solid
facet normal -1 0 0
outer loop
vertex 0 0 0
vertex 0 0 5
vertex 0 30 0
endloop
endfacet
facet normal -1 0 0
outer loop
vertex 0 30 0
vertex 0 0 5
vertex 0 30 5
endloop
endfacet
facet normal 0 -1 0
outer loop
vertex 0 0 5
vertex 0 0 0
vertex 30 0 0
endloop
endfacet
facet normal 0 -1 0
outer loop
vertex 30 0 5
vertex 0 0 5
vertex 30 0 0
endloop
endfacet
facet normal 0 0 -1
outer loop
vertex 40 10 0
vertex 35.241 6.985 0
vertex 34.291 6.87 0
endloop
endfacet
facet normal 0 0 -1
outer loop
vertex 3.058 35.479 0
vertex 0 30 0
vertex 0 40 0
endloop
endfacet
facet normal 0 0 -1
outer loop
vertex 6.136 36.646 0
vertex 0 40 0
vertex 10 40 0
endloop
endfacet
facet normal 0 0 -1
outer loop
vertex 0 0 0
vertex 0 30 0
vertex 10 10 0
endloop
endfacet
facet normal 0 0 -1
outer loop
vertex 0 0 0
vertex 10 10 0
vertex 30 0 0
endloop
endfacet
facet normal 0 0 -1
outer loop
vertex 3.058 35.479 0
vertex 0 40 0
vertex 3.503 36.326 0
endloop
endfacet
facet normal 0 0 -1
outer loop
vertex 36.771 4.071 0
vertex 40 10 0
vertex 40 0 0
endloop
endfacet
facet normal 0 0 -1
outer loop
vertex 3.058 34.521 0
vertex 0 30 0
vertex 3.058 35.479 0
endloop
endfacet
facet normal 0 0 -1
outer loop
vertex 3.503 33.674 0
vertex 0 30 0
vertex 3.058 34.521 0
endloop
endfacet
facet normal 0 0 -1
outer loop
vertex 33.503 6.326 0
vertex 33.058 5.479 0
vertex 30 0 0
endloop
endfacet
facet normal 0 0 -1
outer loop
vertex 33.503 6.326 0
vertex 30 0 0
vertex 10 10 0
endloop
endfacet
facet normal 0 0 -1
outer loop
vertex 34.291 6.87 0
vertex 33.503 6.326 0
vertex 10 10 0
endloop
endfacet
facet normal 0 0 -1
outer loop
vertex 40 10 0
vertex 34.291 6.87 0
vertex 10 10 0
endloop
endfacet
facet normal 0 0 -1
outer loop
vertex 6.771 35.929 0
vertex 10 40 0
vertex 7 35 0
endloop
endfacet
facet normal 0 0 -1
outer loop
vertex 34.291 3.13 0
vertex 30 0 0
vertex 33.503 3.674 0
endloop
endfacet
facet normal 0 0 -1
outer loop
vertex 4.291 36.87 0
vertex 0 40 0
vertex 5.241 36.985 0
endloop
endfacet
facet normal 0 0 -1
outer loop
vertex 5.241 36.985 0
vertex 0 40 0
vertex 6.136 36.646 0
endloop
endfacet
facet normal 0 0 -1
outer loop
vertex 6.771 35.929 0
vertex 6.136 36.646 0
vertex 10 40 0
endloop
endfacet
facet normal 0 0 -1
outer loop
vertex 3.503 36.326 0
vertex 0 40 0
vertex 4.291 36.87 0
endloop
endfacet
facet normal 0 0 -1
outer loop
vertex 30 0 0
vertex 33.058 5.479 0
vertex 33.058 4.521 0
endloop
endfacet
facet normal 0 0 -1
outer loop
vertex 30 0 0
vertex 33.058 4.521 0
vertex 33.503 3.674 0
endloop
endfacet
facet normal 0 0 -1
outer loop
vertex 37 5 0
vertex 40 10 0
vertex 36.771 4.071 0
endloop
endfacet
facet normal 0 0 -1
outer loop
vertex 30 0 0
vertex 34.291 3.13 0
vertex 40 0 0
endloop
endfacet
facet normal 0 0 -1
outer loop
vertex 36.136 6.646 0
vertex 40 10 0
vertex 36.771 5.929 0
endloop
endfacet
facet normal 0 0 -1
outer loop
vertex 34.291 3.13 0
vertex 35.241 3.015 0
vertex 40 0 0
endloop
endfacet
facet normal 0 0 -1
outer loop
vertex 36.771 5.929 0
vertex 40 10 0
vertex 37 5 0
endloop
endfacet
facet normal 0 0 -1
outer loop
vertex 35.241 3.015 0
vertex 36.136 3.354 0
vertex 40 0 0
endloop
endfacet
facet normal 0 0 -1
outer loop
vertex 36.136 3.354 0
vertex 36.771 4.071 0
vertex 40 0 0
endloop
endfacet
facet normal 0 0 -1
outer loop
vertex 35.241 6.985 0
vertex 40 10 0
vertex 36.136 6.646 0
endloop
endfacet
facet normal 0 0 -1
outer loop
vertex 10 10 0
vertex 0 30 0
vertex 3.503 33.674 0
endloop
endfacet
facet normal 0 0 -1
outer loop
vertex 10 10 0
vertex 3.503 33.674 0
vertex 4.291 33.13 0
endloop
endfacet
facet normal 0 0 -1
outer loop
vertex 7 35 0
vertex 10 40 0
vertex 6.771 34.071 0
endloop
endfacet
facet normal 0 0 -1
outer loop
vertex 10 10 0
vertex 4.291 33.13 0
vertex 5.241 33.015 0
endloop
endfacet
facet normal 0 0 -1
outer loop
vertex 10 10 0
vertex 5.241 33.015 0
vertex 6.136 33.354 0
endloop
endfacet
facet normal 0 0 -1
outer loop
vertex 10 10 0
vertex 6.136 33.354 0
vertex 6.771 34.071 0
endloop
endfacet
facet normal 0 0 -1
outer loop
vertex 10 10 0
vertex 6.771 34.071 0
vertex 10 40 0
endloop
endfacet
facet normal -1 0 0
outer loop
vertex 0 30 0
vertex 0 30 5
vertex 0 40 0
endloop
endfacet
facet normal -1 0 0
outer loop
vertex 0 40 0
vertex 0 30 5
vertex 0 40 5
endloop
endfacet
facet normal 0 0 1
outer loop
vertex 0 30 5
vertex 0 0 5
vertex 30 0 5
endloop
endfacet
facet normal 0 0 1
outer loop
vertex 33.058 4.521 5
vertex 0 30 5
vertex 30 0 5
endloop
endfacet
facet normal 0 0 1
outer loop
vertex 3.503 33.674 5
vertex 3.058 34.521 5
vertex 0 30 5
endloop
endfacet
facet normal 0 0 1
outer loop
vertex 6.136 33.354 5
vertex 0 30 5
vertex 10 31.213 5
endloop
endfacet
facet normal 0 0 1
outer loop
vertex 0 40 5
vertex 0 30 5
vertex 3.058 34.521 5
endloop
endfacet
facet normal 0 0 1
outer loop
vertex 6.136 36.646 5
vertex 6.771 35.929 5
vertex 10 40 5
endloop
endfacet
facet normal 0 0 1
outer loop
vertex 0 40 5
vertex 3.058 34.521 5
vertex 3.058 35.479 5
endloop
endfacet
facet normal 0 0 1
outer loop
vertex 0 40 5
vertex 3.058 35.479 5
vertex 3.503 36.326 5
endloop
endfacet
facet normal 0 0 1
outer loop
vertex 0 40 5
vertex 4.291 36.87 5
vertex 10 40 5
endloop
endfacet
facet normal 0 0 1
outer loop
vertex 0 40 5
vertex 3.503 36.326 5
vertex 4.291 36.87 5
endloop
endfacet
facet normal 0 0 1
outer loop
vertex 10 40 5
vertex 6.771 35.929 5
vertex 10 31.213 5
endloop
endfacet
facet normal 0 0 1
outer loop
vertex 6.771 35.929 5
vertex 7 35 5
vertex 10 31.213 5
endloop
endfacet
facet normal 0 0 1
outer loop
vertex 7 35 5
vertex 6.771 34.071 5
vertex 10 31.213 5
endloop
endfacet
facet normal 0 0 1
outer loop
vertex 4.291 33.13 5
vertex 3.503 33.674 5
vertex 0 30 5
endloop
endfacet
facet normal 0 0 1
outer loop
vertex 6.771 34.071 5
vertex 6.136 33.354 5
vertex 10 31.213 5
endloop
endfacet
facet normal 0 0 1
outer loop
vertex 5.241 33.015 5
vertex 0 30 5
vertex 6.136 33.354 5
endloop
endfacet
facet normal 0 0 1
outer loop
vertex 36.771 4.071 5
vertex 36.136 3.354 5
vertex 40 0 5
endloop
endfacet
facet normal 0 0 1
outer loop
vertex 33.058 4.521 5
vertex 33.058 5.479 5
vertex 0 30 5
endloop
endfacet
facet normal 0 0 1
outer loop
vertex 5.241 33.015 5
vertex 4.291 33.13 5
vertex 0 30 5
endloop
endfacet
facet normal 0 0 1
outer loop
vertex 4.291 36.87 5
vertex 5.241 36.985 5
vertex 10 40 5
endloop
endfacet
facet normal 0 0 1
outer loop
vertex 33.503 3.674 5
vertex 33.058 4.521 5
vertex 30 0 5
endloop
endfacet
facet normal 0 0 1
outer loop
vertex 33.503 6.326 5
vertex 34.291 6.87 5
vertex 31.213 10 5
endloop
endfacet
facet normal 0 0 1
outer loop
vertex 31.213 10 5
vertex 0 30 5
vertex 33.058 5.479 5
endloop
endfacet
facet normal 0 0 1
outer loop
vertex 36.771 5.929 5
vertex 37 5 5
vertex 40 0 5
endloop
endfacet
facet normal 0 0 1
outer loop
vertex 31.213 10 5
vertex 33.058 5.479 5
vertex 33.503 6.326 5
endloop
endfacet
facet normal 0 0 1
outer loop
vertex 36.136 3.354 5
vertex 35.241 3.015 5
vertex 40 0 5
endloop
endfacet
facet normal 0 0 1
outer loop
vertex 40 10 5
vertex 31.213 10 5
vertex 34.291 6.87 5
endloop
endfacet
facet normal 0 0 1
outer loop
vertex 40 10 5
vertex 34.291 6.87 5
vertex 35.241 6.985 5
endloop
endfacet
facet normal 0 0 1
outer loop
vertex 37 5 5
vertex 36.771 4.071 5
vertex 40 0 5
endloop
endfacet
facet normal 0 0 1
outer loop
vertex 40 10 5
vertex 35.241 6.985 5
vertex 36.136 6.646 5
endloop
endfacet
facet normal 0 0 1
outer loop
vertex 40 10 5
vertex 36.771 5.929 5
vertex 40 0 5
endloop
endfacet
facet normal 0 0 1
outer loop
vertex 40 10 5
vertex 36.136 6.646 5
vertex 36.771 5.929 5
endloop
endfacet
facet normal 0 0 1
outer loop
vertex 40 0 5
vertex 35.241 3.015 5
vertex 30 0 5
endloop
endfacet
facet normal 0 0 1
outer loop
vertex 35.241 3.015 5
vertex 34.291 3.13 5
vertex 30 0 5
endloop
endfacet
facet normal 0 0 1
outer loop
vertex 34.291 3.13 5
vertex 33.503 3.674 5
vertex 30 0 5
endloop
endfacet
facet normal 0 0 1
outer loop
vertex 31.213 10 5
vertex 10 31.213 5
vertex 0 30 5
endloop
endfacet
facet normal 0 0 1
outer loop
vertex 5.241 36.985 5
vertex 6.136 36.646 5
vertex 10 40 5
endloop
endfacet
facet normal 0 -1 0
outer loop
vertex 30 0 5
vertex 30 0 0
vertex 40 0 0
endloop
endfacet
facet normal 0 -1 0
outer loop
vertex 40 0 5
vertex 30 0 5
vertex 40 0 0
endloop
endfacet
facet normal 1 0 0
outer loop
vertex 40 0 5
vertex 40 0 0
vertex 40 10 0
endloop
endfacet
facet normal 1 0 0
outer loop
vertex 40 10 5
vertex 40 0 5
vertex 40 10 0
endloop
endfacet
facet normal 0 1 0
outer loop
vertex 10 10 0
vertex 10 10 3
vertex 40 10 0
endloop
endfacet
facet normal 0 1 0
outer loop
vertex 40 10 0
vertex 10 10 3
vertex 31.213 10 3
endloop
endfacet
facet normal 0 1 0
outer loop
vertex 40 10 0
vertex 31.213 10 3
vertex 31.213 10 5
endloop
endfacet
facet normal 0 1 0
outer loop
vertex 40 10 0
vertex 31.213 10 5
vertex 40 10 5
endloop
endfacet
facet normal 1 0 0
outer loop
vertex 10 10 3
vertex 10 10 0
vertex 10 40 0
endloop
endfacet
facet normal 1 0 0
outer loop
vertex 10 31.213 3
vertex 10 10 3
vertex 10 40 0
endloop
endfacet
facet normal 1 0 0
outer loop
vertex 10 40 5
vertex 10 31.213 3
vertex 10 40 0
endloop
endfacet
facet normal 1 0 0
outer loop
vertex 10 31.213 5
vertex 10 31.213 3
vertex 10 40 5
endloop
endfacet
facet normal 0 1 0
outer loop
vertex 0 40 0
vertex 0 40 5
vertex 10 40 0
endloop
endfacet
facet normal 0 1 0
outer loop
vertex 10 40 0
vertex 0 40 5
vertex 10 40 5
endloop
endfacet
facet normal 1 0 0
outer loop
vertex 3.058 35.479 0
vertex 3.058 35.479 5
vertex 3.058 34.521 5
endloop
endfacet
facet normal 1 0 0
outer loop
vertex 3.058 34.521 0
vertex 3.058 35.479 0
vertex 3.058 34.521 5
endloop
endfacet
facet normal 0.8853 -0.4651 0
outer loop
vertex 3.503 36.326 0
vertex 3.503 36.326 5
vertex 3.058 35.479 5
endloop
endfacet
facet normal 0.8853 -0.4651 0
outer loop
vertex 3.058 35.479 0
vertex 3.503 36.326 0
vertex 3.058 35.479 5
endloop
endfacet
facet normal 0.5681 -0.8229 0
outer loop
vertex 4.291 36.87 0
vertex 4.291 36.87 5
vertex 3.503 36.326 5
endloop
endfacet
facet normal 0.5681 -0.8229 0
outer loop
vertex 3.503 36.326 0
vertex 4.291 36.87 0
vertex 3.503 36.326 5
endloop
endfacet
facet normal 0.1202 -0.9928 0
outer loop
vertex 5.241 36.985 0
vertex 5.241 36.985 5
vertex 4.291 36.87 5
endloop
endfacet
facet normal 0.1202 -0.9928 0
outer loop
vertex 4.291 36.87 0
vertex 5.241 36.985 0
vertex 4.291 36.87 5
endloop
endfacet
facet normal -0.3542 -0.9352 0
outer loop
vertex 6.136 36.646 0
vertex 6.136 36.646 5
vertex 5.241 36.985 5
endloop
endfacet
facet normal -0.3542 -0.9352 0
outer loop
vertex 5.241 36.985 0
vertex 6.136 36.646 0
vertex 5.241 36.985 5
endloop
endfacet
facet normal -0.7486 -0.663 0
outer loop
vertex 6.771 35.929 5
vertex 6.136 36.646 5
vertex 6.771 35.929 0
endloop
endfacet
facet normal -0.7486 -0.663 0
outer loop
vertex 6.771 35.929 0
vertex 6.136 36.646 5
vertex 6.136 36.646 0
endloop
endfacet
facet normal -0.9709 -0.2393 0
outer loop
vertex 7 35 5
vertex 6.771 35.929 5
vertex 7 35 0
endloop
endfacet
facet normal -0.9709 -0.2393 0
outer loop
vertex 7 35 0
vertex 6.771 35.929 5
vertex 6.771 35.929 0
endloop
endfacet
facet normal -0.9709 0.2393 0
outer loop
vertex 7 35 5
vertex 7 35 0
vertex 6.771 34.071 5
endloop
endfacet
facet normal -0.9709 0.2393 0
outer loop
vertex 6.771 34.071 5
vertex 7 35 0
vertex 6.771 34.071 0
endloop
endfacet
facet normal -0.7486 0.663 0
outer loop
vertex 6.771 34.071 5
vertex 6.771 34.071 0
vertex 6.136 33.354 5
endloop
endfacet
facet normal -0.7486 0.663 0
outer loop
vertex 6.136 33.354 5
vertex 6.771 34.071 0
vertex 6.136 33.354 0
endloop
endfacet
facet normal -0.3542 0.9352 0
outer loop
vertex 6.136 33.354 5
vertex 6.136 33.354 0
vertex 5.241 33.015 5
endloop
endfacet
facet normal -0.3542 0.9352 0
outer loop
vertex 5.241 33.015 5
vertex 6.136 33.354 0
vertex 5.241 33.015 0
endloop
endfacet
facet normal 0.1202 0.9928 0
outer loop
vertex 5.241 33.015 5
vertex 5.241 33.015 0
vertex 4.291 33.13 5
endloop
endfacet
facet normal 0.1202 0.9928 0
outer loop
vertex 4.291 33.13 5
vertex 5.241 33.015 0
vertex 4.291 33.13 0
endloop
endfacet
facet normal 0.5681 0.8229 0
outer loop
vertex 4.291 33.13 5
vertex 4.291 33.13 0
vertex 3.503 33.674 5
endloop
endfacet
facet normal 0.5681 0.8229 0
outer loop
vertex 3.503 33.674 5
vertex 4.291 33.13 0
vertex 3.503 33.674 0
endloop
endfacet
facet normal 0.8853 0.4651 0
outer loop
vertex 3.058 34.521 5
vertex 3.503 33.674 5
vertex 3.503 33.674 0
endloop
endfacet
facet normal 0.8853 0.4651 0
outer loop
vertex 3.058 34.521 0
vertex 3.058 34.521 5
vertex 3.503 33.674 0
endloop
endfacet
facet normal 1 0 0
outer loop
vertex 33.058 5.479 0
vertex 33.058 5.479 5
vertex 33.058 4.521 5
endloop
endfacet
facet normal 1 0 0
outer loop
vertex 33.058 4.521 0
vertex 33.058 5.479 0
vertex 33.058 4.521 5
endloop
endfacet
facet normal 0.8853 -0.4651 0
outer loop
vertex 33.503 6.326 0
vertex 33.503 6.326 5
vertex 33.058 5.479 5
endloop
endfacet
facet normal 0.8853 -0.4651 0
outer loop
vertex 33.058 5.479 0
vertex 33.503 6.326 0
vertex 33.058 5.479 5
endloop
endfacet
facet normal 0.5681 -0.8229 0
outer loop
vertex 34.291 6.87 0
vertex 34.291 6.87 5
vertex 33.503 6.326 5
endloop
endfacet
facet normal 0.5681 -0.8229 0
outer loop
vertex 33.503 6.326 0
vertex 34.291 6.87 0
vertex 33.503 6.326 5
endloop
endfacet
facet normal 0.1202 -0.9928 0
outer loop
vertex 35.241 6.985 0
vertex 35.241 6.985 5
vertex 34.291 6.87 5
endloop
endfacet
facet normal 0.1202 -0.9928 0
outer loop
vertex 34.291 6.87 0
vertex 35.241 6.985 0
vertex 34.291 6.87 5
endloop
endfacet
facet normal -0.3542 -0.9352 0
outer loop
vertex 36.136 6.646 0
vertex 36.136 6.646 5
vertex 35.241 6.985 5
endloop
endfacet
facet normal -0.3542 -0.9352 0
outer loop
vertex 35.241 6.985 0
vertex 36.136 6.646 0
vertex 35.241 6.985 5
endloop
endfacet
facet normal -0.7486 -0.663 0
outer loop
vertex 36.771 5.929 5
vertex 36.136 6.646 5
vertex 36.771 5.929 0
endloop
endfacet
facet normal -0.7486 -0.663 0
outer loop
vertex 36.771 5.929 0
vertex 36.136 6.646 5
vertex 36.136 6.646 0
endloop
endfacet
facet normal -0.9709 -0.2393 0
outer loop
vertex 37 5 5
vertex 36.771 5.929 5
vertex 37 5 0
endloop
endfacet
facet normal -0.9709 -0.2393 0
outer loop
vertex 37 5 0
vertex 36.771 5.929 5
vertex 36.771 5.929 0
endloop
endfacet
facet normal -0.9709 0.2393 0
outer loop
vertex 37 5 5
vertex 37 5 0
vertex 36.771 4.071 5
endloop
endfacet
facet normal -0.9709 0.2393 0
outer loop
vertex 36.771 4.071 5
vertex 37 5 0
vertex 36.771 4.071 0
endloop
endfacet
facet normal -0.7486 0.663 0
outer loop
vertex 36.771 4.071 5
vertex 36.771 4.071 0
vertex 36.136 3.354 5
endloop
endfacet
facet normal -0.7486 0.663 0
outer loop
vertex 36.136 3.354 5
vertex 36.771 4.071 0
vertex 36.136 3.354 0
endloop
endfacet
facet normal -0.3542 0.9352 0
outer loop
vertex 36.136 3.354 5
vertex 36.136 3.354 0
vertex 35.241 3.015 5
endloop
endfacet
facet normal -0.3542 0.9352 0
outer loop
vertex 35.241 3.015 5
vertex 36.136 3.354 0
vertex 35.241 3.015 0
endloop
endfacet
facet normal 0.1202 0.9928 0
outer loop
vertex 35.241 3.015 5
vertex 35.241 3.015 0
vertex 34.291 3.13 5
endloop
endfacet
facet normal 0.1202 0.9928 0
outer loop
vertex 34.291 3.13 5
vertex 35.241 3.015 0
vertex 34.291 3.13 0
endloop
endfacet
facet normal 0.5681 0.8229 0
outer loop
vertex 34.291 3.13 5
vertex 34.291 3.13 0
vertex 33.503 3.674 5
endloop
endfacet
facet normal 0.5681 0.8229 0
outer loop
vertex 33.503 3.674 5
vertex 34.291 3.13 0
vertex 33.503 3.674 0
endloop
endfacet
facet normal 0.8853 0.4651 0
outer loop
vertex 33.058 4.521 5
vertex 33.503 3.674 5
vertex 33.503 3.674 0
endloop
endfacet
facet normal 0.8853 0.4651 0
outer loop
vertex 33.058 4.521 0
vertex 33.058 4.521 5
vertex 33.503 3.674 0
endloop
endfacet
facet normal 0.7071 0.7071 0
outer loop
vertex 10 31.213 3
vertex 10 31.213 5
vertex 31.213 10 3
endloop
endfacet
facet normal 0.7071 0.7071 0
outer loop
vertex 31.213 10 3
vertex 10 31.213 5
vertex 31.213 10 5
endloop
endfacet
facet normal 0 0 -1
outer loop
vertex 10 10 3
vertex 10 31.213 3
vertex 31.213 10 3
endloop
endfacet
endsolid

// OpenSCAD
glassheight=3;
widthroof=2;

difference() {
union() {
translate([10,10,glassheight+widthroof/2])
	rotate([0,0,45])
	cube([30,30,widthroof],true);

cube([40,10,glassheight+widthroof]);
cube([10,40,glassheight+widthroof]);
}

translate([-10,-30,0])
	cube([40,30,glassheight+widthroof]);

translate([-30,-10,0])
	cube([30,40,glassheight+widthroof]);

translate([35,5,0])
	cylinder(h=100,r=4/2,center=false,$fs=1);
translate([5,35,0])
	cylinder(h=100,r=4/2,center=false,$fs=1);
}
